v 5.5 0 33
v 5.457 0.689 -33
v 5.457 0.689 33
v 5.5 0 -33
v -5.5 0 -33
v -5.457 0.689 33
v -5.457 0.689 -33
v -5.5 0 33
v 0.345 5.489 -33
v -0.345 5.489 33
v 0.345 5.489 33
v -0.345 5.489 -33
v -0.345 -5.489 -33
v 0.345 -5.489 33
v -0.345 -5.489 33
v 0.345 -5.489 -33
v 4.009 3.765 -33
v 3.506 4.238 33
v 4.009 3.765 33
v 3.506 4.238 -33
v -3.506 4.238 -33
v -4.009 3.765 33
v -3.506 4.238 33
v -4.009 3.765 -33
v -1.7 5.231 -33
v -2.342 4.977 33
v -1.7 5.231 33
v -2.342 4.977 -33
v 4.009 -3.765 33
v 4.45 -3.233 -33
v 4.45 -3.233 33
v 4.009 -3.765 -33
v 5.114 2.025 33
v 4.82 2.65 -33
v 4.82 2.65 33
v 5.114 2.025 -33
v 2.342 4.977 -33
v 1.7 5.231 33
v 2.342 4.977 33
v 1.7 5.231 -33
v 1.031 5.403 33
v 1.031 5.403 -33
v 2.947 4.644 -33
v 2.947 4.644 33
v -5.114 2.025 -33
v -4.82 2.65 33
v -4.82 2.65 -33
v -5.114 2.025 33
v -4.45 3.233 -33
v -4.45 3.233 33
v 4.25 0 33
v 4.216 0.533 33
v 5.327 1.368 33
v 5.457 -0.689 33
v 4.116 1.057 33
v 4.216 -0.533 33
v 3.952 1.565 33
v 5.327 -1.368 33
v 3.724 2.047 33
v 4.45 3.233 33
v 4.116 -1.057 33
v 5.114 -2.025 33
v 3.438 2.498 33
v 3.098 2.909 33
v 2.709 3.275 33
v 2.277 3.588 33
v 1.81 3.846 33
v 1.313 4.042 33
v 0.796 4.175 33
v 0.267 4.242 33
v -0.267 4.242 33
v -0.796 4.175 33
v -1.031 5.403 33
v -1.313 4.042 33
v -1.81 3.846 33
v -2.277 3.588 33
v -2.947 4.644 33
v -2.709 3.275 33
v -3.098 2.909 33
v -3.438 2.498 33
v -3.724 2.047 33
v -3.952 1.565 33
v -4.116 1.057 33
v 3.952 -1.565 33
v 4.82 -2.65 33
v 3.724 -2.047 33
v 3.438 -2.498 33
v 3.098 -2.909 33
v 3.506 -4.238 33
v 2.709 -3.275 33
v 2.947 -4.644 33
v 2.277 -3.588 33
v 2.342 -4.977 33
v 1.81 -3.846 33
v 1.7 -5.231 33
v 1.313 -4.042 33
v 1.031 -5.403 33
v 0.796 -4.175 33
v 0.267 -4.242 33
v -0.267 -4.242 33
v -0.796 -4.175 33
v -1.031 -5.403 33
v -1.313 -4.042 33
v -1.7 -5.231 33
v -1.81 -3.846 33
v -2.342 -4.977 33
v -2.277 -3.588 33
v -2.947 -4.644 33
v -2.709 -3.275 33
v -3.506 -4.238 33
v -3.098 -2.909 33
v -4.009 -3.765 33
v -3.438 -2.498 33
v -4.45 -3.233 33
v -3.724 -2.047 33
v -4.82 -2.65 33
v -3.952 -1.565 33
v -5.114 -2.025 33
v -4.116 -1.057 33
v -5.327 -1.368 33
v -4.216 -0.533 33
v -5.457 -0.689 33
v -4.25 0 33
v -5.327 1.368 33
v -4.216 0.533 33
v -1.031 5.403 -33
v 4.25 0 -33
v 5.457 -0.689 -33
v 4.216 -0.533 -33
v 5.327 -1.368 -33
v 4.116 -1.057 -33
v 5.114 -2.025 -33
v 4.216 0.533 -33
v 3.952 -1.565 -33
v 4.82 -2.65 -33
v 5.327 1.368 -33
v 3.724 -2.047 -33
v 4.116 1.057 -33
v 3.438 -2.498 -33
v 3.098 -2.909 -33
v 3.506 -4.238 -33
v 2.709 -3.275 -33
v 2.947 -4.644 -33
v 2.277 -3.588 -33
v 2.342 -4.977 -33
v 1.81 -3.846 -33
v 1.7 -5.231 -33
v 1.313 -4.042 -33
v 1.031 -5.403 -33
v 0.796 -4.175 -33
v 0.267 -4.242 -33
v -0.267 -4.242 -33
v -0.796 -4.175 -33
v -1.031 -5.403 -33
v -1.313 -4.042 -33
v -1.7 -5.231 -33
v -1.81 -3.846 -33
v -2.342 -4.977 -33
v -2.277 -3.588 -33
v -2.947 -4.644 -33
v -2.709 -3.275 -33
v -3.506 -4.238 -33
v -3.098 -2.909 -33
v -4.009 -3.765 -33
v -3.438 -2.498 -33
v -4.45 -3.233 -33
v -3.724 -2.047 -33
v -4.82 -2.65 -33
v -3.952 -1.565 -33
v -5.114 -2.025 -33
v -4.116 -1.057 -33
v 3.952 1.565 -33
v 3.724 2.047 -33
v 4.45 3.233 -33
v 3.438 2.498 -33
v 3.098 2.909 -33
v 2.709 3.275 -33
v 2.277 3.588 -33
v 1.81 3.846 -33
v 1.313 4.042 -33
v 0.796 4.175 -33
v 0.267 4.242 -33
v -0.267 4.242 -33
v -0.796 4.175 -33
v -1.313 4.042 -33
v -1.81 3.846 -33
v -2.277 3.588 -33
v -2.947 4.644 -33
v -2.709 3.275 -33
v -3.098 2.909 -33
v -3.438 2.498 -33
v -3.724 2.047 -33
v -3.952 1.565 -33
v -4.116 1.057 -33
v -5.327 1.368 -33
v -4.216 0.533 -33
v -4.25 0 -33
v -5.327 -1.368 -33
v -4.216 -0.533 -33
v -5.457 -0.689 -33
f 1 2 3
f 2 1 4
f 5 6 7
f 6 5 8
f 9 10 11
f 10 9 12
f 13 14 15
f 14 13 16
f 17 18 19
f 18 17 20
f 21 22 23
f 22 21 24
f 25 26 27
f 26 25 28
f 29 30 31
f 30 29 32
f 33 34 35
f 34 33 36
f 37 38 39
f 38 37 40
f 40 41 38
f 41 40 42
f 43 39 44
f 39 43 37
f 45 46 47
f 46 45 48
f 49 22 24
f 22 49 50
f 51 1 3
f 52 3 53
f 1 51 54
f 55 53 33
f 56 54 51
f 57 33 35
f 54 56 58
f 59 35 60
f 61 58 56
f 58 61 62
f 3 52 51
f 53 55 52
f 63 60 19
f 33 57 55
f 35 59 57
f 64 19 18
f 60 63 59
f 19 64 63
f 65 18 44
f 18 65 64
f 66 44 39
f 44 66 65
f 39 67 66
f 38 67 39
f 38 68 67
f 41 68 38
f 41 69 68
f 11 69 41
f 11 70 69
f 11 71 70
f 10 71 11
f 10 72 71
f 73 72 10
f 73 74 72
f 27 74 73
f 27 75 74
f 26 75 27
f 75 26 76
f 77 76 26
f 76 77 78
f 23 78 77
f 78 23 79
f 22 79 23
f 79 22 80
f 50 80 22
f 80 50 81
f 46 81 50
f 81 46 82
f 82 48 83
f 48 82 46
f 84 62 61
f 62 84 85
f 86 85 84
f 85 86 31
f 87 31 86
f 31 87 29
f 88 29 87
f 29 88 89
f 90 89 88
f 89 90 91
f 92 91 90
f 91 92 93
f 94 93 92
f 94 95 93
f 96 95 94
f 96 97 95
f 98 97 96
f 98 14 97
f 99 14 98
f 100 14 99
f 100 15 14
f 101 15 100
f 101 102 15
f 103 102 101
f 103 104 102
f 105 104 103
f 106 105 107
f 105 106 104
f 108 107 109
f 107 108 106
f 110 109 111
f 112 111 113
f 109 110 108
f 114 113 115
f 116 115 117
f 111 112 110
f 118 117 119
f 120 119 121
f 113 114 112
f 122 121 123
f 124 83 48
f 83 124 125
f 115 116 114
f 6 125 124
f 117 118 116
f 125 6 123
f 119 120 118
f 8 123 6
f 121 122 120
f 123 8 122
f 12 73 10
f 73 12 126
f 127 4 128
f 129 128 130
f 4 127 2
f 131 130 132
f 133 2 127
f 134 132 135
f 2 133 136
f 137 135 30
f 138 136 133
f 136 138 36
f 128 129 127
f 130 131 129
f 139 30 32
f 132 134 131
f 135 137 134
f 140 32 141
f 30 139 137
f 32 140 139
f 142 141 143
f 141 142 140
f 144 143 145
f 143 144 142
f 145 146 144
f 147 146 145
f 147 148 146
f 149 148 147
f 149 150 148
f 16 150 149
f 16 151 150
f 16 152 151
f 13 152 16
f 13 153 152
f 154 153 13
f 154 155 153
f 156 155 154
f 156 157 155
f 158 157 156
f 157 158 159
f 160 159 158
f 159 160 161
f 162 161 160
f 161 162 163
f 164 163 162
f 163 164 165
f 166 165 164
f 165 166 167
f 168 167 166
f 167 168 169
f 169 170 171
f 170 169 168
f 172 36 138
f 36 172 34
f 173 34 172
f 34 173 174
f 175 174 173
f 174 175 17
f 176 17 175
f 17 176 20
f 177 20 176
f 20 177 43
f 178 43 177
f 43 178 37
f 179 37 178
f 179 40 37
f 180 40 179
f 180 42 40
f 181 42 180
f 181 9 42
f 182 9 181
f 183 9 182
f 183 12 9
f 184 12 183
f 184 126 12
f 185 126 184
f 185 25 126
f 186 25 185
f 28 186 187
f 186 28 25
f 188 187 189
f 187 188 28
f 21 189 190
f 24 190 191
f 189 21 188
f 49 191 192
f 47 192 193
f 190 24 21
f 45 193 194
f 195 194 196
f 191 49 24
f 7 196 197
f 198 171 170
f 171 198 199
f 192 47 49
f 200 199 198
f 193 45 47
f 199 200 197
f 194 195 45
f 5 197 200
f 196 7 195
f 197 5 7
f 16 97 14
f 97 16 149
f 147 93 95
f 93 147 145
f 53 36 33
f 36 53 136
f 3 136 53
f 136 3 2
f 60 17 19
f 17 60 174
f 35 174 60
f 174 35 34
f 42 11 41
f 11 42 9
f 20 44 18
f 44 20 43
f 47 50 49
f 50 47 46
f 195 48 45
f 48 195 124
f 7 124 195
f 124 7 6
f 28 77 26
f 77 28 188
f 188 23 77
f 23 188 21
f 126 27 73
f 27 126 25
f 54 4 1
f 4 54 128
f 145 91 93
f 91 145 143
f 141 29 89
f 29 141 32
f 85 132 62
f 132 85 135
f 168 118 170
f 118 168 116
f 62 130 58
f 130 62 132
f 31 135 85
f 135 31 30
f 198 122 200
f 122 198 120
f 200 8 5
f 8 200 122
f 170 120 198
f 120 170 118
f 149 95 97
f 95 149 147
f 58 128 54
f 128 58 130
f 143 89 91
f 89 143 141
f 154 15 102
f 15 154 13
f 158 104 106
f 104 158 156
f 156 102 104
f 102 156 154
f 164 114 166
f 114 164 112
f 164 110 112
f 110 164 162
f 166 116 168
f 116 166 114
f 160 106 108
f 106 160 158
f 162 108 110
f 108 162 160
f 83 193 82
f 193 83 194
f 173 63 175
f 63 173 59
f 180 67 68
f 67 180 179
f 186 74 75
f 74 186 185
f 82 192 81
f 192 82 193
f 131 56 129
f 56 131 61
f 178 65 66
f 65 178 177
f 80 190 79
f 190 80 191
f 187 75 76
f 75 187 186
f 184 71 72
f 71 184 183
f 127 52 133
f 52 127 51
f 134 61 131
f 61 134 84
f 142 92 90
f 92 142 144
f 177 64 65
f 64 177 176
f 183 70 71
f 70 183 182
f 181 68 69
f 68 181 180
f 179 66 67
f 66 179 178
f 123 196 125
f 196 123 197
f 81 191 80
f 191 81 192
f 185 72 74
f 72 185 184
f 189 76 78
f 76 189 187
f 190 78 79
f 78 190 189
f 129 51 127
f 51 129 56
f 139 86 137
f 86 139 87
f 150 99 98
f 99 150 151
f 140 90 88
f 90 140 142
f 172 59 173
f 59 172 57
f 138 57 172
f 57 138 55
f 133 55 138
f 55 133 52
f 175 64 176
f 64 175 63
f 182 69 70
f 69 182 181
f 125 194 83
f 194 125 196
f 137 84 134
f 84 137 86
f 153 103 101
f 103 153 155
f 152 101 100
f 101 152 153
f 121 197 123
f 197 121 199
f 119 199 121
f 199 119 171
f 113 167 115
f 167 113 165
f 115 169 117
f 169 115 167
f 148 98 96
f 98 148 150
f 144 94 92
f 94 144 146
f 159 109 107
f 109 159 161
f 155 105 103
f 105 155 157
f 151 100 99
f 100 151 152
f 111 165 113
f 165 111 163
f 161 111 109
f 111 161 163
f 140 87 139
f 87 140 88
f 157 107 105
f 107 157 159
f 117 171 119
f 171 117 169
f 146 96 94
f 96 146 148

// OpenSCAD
$fn = 50;


difference() {
	union() {
		translate(v = [0, 0, -33.0000000000]) {
			cylinder(h = 66, r = 5.5000000000);
		}
	}
	union() {
		translate(v = [0, 0, -100.0000000000]) {
			cylinder(h = 200, r = 4.2500000000);
		}
	}
}
